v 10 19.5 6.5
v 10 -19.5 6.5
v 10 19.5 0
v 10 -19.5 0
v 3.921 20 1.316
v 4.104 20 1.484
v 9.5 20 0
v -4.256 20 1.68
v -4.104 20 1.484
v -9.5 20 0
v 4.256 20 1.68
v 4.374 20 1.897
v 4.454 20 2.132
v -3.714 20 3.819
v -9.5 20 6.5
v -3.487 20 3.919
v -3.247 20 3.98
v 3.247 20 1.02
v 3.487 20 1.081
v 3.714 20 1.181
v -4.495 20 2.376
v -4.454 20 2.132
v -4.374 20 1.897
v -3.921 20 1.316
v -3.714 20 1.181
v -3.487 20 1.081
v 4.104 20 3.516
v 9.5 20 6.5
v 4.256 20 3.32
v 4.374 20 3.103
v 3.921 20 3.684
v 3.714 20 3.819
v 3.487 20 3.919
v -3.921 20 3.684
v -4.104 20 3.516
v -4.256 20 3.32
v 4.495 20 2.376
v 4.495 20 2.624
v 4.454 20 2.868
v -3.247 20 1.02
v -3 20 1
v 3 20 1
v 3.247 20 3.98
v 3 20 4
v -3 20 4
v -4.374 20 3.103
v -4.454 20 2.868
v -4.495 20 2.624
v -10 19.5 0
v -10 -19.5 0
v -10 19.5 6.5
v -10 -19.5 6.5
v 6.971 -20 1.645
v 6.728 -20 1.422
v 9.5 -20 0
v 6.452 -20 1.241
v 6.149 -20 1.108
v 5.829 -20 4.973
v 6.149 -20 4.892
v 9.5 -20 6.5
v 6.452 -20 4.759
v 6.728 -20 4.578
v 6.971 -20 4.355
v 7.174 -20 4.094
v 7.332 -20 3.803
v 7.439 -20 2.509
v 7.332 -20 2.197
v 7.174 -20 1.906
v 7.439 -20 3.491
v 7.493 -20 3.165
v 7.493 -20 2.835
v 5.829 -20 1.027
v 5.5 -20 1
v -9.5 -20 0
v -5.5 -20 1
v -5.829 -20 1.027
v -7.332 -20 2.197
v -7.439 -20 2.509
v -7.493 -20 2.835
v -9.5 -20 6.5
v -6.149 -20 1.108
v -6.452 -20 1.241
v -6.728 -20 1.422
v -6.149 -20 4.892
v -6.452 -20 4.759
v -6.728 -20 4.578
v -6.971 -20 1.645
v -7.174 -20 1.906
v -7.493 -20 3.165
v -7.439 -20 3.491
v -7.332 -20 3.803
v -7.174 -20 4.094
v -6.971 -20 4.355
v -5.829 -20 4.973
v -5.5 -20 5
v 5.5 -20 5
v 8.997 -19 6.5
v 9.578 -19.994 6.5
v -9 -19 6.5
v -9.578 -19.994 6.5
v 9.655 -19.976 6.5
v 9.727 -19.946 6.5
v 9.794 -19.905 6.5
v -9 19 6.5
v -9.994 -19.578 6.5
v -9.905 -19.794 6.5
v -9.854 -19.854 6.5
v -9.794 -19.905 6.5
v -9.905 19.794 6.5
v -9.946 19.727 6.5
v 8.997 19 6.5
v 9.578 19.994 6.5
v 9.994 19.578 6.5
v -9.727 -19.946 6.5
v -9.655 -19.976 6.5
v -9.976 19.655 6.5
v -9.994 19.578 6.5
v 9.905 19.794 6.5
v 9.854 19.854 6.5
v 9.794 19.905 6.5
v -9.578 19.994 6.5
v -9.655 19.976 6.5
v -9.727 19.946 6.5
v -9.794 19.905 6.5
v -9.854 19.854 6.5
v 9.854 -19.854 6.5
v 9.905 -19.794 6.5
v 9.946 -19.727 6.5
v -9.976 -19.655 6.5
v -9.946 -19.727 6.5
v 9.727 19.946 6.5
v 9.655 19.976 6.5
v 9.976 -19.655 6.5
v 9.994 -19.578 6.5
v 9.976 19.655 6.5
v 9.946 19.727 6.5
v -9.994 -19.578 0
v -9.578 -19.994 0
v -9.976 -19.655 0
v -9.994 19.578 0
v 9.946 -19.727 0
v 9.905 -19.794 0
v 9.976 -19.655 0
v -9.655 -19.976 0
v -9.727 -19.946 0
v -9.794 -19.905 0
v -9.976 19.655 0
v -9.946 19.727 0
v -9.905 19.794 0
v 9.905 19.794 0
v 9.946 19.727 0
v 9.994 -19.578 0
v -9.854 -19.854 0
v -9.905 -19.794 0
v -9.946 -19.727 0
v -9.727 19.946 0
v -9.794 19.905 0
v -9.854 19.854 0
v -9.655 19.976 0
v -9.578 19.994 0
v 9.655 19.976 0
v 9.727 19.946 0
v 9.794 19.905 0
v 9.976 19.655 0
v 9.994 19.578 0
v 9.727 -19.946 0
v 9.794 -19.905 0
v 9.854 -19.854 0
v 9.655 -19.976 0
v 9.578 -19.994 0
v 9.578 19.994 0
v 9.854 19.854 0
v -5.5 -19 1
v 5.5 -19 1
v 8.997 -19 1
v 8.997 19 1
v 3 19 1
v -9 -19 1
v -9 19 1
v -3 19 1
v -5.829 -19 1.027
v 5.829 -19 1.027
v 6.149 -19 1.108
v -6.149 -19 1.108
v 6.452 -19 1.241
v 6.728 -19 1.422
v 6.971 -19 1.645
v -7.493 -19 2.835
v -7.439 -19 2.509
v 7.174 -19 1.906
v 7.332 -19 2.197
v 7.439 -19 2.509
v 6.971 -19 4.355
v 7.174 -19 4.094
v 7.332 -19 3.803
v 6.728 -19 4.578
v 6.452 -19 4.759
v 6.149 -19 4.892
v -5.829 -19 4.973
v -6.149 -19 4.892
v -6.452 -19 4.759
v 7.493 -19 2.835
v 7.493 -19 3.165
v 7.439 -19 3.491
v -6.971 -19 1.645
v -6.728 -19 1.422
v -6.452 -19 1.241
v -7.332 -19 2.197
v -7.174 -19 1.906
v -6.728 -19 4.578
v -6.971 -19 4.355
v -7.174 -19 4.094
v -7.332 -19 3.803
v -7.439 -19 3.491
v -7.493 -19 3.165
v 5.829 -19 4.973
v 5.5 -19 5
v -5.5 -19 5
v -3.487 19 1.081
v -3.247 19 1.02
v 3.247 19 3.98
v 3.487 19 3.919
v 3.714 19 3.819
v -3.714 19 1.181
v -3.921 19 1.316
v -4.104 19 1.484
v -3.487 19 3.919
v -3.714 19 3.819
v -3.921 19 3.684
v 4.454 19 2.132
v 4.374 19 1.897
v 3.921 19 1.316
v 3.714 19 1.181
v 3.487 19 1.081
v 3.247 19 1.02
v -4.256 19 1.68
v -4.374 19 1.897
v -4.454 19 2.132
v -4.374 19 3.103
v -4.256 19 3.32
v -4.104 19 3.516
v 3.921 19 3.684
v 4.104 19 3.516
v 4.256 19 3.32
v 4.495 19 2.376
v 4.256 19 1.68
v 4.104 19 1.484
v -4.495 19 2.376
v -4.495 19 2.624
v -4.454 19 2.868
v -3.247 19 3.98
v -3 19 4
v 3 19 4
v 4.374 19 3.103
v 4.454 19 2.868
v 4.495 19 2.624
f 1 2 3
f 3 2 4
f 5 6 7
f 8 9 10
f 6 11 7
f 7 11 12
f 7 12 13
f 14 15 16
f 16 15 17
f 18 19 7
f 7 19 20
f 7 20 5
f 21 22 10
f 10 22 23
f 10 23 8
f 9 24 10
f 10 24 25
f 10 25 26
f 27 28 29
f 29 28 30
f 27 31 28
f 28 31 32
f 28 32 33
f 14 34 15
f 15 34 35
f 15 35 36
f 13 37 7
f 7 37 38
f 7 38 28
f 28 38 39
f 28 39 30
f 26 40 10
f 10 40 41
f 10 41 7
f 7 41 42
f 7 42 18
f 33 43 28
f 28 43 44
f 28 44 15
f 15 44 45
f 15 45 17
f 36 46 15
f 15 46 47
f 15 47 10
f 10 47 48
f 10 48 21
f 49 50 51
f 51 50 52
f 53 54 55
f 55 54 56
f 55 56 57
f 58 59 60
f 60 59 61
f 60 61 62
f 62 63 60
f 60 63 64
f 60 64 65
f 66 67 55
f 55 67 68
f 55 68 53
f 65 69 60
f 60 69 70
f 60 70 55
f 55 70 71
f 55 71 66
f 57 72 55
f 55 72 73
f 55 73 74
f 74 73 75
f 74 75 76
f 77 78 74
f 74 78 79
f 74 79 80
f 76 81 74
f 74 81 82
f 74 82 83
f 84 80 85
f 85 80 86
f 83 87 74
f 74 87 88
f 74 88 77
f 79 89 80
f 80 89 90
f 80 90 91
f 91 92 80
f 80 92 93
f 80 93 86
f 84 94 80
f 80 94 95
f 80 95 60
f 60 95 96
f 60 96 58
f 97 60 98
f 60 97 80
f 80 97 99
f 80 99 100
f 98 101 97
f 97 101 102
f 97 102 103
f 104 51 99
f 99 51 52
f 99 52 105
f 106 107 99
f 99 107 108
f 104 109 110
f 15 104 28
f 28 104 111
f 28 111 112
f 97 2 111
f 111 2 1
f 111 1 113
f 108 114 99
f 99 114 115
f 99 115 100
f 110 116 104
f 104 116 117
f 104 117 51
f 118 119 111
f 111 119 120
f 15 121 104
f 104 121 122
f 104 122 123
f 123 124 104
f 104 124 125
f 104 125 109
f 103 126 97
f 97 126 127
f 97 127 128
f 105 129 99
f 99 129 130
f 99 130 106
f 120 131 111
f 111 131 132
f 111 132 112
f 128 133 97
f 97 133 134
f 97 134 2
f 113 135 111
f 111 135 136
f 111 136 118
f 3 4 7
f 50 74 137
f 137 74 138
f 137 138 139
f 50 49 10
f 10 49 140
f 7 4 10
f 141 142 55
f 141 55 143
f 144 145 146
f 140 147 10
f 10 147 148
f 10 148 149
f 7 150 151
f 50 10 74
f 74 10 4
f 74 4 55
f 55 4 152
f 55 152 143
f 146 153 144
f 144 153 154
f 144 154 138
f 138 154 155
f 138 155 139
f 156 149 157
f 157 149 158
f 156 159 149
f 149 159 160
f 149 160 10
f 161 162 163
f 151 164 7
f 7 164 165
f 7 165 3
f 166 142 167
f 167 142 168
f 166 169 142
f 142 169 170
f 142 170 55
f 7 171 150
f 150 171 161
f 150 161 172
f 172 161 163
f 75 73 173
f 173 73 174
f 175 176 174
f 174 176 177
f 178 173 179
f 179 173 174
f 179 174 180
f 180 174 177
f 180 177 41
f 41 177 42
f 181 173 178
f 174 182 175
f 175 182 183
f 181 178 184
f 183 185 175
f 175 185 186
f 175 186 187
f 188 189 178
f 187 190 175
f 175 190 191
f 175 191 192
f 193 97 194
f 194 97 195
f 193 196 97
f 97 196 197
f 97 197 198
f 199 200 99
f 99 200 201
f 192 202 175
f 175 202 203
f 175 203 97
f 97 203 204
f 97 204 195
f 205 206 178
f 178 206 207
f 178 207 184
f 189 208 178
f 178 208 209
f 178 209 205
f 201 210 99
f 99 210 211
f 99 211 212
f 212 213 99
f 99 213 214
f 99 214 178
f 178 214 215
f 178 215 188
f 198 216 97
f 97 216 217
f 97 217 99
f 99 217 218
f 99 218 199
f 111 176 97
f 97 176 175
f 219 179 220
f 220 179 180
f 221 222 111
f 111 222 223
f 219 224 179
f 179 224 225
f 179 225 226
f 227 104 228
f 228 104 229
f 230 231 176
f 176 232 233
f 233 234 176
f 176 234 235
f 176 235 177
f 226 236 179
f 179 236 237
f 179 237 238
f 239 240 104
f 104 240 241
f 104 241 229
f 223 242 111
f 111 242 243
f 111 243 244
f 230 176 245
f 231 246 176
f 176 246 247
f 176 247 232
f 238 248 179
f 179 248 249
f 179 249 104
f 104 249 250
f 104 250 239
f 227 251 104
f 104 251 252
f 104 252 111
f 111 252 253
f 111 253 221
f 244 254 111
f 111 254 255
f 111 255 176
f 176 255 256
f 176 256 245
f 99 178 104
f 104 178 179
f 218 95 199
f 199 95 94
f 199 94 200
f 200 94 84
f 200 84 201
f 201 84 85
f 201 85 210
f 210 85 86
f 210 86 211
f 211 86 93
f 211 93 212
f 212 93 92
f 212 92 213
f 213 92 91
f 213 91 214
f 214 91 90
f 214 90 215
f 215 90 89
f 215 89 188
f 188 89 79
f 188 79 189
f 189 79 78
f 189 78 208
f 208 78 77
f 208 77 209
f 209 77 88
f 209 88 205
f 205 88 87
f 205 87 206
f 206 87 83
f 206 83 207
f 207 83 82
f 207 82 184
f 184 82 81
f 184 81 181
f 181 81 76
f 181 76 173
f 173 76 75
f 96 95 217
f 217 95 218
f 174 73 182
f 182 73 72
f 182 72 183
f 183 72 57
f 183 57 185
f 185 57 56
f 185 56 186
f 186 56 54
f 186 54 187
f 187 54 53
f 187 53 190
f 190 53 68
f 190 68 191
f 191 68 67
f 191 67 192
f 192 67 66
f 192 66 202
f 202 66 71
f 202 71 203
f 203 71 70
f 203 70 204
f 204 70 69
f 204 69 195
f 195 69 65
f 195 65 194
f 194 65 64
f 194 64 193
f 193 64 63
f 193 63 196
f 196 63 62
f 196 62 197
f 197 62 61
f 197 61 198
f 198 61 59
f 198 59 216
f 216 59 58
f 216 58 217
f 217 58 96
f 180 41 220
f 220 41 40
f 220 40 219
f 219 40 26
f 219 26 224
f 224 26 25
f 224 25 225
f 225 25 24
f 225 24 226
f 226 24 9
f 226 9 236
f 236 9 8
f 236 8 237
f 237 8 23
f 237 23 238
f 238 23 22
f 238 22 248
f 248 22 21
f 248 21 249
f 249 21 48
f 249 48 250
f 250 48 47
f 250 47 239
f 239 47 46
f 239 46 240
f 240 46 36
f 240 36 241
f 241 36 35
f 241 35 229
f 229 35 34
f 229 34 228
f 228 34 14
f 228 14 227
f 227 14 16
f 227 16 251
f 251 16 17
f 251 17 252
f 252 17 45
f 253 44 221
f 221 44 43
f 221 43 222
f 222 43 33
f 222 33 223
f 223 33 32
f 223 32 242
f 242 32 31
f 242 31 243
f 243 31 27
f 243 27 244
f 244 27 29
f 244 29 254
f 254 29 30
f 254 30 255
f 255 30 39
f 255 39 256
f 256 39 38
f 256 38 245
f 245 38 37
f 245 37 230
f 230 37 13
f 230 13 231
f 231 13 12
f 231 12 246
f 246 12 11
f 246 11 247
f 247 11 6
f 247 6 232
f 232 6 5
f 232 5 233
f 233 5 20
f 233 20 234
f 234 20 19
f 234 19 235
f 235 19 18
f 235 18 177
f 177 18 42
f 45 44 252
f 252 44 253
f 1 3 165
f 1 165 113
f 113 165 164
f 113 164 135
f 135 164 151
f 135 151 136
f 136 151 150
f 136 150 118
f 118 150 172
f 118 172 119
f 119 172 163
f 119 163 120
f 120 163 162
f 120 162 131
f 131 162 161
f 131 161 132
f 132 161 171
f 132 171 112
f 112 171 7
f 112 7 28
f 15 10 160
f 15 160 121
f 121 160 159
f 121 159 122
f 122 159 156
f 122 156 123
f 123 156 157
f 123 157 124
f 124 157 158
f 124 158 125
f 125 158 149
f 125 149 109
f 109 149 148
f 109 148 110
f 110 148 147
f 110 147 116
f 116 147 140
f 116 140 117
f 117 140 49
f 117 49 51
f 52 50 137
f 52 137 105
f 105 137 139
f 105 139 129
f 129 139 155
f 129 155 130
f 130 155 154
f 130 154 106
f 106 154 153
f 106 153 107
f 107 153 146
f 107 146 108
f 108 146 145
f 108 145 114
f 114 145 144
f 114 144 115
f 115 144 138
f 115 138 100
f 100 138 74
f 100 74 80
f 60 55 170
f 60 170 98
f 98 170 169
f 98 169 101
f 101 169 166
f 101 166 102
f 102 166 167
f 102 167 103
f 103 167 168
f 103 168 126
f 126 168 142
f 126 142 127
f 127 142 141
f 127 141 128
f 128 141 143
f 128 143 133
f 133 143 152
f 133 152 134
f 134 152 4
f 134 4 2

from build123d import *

# Parameters (mm, degrees)
SKETCH2_W           = 20
SKETCH2_H           = 40
BOSS_EXTRUDE1_DEPTH = 6.5
SKETCH4_W           = 17.997114687
SKETCH4_H           = 38
CUT_EXTRUDE1_DEPTH  = 5.5
CUT_EXTRUDE4_DEPTH  = 1
CUT_EXTRUDE5_DEPTH  = 1
FILLET1_R           = 0.5


with BuildPart() as part:
    # Sketch2 → Boss-Extrude1 (new body)
    with BuildSketch(Plane.XY):
        Rectangle(SKETCH2_W, SKETCH2_H)
    extrude(amount=BOSS_EXTRUDE1_DEPTH)

    # Sketch4 → Cut-Extrude1 (cut)
    with BuildSketch(Plane.XY.offset(6.5)):
        with Locations((-0.001442657, 0)):
            Rectangle(SKETCH4_W, SKETCH4_H)
    extrude(amount=-CUT_EXTRUDE1_DEPTH, mode=Mode.SUBTRACT)

    # Sketch6 → Cut-Extrude4 (cut)
    with BuildSketch(Plane.XZ.offset(20)):
        with BuildLine():
            Line((-5.5, 5), (5.5, 5))
            ThreePointArc((5.5, 5), (7.5, 3), (5.5, 1))
            Line((5.5, 1), (-5.5, 1))
            ThreePointArc((-5.5, 1), (-7.5, 3), (-5.5, 5))
        make_face()
    extrude(amount=-CUT_EXTRUDE4_DEPTH, mode=Mode.SUBTRACT)

    # Sketch8 → Cut-Extrude5 (cut)
    with BuildSketch(Plane(origin=(0, 20, 0), x_dir=(1, 0, 0), z_dir=(0, 1, 0))):
        with BuildLine():
            Line((-3, -1), (3, -1))
            ThreePointArc((3, -1), (4.5, -2.5), (3, -4))
            Line((3, -4), (-3, -4))
            ThreePointArc((-3, -4), (-4.5, -2.5), (-3, -1))
        make_face()
    extrude(amount=-CUT_EXTRUDE5_DEPTH, mode=Mode.SUBTRACT)

    # Fillet1
    fillet1_edges = [part.edges().sort_by_distance(p)[0] for p in [
        (10, -20, 3.25),
        (-10, -20, 3.25),
        (-10, 20, 3.25),
        (10, 20, 3.25),
    ]]
    fillet(fillet1_edges, radius=FILLET1_R)


solid = part.part
